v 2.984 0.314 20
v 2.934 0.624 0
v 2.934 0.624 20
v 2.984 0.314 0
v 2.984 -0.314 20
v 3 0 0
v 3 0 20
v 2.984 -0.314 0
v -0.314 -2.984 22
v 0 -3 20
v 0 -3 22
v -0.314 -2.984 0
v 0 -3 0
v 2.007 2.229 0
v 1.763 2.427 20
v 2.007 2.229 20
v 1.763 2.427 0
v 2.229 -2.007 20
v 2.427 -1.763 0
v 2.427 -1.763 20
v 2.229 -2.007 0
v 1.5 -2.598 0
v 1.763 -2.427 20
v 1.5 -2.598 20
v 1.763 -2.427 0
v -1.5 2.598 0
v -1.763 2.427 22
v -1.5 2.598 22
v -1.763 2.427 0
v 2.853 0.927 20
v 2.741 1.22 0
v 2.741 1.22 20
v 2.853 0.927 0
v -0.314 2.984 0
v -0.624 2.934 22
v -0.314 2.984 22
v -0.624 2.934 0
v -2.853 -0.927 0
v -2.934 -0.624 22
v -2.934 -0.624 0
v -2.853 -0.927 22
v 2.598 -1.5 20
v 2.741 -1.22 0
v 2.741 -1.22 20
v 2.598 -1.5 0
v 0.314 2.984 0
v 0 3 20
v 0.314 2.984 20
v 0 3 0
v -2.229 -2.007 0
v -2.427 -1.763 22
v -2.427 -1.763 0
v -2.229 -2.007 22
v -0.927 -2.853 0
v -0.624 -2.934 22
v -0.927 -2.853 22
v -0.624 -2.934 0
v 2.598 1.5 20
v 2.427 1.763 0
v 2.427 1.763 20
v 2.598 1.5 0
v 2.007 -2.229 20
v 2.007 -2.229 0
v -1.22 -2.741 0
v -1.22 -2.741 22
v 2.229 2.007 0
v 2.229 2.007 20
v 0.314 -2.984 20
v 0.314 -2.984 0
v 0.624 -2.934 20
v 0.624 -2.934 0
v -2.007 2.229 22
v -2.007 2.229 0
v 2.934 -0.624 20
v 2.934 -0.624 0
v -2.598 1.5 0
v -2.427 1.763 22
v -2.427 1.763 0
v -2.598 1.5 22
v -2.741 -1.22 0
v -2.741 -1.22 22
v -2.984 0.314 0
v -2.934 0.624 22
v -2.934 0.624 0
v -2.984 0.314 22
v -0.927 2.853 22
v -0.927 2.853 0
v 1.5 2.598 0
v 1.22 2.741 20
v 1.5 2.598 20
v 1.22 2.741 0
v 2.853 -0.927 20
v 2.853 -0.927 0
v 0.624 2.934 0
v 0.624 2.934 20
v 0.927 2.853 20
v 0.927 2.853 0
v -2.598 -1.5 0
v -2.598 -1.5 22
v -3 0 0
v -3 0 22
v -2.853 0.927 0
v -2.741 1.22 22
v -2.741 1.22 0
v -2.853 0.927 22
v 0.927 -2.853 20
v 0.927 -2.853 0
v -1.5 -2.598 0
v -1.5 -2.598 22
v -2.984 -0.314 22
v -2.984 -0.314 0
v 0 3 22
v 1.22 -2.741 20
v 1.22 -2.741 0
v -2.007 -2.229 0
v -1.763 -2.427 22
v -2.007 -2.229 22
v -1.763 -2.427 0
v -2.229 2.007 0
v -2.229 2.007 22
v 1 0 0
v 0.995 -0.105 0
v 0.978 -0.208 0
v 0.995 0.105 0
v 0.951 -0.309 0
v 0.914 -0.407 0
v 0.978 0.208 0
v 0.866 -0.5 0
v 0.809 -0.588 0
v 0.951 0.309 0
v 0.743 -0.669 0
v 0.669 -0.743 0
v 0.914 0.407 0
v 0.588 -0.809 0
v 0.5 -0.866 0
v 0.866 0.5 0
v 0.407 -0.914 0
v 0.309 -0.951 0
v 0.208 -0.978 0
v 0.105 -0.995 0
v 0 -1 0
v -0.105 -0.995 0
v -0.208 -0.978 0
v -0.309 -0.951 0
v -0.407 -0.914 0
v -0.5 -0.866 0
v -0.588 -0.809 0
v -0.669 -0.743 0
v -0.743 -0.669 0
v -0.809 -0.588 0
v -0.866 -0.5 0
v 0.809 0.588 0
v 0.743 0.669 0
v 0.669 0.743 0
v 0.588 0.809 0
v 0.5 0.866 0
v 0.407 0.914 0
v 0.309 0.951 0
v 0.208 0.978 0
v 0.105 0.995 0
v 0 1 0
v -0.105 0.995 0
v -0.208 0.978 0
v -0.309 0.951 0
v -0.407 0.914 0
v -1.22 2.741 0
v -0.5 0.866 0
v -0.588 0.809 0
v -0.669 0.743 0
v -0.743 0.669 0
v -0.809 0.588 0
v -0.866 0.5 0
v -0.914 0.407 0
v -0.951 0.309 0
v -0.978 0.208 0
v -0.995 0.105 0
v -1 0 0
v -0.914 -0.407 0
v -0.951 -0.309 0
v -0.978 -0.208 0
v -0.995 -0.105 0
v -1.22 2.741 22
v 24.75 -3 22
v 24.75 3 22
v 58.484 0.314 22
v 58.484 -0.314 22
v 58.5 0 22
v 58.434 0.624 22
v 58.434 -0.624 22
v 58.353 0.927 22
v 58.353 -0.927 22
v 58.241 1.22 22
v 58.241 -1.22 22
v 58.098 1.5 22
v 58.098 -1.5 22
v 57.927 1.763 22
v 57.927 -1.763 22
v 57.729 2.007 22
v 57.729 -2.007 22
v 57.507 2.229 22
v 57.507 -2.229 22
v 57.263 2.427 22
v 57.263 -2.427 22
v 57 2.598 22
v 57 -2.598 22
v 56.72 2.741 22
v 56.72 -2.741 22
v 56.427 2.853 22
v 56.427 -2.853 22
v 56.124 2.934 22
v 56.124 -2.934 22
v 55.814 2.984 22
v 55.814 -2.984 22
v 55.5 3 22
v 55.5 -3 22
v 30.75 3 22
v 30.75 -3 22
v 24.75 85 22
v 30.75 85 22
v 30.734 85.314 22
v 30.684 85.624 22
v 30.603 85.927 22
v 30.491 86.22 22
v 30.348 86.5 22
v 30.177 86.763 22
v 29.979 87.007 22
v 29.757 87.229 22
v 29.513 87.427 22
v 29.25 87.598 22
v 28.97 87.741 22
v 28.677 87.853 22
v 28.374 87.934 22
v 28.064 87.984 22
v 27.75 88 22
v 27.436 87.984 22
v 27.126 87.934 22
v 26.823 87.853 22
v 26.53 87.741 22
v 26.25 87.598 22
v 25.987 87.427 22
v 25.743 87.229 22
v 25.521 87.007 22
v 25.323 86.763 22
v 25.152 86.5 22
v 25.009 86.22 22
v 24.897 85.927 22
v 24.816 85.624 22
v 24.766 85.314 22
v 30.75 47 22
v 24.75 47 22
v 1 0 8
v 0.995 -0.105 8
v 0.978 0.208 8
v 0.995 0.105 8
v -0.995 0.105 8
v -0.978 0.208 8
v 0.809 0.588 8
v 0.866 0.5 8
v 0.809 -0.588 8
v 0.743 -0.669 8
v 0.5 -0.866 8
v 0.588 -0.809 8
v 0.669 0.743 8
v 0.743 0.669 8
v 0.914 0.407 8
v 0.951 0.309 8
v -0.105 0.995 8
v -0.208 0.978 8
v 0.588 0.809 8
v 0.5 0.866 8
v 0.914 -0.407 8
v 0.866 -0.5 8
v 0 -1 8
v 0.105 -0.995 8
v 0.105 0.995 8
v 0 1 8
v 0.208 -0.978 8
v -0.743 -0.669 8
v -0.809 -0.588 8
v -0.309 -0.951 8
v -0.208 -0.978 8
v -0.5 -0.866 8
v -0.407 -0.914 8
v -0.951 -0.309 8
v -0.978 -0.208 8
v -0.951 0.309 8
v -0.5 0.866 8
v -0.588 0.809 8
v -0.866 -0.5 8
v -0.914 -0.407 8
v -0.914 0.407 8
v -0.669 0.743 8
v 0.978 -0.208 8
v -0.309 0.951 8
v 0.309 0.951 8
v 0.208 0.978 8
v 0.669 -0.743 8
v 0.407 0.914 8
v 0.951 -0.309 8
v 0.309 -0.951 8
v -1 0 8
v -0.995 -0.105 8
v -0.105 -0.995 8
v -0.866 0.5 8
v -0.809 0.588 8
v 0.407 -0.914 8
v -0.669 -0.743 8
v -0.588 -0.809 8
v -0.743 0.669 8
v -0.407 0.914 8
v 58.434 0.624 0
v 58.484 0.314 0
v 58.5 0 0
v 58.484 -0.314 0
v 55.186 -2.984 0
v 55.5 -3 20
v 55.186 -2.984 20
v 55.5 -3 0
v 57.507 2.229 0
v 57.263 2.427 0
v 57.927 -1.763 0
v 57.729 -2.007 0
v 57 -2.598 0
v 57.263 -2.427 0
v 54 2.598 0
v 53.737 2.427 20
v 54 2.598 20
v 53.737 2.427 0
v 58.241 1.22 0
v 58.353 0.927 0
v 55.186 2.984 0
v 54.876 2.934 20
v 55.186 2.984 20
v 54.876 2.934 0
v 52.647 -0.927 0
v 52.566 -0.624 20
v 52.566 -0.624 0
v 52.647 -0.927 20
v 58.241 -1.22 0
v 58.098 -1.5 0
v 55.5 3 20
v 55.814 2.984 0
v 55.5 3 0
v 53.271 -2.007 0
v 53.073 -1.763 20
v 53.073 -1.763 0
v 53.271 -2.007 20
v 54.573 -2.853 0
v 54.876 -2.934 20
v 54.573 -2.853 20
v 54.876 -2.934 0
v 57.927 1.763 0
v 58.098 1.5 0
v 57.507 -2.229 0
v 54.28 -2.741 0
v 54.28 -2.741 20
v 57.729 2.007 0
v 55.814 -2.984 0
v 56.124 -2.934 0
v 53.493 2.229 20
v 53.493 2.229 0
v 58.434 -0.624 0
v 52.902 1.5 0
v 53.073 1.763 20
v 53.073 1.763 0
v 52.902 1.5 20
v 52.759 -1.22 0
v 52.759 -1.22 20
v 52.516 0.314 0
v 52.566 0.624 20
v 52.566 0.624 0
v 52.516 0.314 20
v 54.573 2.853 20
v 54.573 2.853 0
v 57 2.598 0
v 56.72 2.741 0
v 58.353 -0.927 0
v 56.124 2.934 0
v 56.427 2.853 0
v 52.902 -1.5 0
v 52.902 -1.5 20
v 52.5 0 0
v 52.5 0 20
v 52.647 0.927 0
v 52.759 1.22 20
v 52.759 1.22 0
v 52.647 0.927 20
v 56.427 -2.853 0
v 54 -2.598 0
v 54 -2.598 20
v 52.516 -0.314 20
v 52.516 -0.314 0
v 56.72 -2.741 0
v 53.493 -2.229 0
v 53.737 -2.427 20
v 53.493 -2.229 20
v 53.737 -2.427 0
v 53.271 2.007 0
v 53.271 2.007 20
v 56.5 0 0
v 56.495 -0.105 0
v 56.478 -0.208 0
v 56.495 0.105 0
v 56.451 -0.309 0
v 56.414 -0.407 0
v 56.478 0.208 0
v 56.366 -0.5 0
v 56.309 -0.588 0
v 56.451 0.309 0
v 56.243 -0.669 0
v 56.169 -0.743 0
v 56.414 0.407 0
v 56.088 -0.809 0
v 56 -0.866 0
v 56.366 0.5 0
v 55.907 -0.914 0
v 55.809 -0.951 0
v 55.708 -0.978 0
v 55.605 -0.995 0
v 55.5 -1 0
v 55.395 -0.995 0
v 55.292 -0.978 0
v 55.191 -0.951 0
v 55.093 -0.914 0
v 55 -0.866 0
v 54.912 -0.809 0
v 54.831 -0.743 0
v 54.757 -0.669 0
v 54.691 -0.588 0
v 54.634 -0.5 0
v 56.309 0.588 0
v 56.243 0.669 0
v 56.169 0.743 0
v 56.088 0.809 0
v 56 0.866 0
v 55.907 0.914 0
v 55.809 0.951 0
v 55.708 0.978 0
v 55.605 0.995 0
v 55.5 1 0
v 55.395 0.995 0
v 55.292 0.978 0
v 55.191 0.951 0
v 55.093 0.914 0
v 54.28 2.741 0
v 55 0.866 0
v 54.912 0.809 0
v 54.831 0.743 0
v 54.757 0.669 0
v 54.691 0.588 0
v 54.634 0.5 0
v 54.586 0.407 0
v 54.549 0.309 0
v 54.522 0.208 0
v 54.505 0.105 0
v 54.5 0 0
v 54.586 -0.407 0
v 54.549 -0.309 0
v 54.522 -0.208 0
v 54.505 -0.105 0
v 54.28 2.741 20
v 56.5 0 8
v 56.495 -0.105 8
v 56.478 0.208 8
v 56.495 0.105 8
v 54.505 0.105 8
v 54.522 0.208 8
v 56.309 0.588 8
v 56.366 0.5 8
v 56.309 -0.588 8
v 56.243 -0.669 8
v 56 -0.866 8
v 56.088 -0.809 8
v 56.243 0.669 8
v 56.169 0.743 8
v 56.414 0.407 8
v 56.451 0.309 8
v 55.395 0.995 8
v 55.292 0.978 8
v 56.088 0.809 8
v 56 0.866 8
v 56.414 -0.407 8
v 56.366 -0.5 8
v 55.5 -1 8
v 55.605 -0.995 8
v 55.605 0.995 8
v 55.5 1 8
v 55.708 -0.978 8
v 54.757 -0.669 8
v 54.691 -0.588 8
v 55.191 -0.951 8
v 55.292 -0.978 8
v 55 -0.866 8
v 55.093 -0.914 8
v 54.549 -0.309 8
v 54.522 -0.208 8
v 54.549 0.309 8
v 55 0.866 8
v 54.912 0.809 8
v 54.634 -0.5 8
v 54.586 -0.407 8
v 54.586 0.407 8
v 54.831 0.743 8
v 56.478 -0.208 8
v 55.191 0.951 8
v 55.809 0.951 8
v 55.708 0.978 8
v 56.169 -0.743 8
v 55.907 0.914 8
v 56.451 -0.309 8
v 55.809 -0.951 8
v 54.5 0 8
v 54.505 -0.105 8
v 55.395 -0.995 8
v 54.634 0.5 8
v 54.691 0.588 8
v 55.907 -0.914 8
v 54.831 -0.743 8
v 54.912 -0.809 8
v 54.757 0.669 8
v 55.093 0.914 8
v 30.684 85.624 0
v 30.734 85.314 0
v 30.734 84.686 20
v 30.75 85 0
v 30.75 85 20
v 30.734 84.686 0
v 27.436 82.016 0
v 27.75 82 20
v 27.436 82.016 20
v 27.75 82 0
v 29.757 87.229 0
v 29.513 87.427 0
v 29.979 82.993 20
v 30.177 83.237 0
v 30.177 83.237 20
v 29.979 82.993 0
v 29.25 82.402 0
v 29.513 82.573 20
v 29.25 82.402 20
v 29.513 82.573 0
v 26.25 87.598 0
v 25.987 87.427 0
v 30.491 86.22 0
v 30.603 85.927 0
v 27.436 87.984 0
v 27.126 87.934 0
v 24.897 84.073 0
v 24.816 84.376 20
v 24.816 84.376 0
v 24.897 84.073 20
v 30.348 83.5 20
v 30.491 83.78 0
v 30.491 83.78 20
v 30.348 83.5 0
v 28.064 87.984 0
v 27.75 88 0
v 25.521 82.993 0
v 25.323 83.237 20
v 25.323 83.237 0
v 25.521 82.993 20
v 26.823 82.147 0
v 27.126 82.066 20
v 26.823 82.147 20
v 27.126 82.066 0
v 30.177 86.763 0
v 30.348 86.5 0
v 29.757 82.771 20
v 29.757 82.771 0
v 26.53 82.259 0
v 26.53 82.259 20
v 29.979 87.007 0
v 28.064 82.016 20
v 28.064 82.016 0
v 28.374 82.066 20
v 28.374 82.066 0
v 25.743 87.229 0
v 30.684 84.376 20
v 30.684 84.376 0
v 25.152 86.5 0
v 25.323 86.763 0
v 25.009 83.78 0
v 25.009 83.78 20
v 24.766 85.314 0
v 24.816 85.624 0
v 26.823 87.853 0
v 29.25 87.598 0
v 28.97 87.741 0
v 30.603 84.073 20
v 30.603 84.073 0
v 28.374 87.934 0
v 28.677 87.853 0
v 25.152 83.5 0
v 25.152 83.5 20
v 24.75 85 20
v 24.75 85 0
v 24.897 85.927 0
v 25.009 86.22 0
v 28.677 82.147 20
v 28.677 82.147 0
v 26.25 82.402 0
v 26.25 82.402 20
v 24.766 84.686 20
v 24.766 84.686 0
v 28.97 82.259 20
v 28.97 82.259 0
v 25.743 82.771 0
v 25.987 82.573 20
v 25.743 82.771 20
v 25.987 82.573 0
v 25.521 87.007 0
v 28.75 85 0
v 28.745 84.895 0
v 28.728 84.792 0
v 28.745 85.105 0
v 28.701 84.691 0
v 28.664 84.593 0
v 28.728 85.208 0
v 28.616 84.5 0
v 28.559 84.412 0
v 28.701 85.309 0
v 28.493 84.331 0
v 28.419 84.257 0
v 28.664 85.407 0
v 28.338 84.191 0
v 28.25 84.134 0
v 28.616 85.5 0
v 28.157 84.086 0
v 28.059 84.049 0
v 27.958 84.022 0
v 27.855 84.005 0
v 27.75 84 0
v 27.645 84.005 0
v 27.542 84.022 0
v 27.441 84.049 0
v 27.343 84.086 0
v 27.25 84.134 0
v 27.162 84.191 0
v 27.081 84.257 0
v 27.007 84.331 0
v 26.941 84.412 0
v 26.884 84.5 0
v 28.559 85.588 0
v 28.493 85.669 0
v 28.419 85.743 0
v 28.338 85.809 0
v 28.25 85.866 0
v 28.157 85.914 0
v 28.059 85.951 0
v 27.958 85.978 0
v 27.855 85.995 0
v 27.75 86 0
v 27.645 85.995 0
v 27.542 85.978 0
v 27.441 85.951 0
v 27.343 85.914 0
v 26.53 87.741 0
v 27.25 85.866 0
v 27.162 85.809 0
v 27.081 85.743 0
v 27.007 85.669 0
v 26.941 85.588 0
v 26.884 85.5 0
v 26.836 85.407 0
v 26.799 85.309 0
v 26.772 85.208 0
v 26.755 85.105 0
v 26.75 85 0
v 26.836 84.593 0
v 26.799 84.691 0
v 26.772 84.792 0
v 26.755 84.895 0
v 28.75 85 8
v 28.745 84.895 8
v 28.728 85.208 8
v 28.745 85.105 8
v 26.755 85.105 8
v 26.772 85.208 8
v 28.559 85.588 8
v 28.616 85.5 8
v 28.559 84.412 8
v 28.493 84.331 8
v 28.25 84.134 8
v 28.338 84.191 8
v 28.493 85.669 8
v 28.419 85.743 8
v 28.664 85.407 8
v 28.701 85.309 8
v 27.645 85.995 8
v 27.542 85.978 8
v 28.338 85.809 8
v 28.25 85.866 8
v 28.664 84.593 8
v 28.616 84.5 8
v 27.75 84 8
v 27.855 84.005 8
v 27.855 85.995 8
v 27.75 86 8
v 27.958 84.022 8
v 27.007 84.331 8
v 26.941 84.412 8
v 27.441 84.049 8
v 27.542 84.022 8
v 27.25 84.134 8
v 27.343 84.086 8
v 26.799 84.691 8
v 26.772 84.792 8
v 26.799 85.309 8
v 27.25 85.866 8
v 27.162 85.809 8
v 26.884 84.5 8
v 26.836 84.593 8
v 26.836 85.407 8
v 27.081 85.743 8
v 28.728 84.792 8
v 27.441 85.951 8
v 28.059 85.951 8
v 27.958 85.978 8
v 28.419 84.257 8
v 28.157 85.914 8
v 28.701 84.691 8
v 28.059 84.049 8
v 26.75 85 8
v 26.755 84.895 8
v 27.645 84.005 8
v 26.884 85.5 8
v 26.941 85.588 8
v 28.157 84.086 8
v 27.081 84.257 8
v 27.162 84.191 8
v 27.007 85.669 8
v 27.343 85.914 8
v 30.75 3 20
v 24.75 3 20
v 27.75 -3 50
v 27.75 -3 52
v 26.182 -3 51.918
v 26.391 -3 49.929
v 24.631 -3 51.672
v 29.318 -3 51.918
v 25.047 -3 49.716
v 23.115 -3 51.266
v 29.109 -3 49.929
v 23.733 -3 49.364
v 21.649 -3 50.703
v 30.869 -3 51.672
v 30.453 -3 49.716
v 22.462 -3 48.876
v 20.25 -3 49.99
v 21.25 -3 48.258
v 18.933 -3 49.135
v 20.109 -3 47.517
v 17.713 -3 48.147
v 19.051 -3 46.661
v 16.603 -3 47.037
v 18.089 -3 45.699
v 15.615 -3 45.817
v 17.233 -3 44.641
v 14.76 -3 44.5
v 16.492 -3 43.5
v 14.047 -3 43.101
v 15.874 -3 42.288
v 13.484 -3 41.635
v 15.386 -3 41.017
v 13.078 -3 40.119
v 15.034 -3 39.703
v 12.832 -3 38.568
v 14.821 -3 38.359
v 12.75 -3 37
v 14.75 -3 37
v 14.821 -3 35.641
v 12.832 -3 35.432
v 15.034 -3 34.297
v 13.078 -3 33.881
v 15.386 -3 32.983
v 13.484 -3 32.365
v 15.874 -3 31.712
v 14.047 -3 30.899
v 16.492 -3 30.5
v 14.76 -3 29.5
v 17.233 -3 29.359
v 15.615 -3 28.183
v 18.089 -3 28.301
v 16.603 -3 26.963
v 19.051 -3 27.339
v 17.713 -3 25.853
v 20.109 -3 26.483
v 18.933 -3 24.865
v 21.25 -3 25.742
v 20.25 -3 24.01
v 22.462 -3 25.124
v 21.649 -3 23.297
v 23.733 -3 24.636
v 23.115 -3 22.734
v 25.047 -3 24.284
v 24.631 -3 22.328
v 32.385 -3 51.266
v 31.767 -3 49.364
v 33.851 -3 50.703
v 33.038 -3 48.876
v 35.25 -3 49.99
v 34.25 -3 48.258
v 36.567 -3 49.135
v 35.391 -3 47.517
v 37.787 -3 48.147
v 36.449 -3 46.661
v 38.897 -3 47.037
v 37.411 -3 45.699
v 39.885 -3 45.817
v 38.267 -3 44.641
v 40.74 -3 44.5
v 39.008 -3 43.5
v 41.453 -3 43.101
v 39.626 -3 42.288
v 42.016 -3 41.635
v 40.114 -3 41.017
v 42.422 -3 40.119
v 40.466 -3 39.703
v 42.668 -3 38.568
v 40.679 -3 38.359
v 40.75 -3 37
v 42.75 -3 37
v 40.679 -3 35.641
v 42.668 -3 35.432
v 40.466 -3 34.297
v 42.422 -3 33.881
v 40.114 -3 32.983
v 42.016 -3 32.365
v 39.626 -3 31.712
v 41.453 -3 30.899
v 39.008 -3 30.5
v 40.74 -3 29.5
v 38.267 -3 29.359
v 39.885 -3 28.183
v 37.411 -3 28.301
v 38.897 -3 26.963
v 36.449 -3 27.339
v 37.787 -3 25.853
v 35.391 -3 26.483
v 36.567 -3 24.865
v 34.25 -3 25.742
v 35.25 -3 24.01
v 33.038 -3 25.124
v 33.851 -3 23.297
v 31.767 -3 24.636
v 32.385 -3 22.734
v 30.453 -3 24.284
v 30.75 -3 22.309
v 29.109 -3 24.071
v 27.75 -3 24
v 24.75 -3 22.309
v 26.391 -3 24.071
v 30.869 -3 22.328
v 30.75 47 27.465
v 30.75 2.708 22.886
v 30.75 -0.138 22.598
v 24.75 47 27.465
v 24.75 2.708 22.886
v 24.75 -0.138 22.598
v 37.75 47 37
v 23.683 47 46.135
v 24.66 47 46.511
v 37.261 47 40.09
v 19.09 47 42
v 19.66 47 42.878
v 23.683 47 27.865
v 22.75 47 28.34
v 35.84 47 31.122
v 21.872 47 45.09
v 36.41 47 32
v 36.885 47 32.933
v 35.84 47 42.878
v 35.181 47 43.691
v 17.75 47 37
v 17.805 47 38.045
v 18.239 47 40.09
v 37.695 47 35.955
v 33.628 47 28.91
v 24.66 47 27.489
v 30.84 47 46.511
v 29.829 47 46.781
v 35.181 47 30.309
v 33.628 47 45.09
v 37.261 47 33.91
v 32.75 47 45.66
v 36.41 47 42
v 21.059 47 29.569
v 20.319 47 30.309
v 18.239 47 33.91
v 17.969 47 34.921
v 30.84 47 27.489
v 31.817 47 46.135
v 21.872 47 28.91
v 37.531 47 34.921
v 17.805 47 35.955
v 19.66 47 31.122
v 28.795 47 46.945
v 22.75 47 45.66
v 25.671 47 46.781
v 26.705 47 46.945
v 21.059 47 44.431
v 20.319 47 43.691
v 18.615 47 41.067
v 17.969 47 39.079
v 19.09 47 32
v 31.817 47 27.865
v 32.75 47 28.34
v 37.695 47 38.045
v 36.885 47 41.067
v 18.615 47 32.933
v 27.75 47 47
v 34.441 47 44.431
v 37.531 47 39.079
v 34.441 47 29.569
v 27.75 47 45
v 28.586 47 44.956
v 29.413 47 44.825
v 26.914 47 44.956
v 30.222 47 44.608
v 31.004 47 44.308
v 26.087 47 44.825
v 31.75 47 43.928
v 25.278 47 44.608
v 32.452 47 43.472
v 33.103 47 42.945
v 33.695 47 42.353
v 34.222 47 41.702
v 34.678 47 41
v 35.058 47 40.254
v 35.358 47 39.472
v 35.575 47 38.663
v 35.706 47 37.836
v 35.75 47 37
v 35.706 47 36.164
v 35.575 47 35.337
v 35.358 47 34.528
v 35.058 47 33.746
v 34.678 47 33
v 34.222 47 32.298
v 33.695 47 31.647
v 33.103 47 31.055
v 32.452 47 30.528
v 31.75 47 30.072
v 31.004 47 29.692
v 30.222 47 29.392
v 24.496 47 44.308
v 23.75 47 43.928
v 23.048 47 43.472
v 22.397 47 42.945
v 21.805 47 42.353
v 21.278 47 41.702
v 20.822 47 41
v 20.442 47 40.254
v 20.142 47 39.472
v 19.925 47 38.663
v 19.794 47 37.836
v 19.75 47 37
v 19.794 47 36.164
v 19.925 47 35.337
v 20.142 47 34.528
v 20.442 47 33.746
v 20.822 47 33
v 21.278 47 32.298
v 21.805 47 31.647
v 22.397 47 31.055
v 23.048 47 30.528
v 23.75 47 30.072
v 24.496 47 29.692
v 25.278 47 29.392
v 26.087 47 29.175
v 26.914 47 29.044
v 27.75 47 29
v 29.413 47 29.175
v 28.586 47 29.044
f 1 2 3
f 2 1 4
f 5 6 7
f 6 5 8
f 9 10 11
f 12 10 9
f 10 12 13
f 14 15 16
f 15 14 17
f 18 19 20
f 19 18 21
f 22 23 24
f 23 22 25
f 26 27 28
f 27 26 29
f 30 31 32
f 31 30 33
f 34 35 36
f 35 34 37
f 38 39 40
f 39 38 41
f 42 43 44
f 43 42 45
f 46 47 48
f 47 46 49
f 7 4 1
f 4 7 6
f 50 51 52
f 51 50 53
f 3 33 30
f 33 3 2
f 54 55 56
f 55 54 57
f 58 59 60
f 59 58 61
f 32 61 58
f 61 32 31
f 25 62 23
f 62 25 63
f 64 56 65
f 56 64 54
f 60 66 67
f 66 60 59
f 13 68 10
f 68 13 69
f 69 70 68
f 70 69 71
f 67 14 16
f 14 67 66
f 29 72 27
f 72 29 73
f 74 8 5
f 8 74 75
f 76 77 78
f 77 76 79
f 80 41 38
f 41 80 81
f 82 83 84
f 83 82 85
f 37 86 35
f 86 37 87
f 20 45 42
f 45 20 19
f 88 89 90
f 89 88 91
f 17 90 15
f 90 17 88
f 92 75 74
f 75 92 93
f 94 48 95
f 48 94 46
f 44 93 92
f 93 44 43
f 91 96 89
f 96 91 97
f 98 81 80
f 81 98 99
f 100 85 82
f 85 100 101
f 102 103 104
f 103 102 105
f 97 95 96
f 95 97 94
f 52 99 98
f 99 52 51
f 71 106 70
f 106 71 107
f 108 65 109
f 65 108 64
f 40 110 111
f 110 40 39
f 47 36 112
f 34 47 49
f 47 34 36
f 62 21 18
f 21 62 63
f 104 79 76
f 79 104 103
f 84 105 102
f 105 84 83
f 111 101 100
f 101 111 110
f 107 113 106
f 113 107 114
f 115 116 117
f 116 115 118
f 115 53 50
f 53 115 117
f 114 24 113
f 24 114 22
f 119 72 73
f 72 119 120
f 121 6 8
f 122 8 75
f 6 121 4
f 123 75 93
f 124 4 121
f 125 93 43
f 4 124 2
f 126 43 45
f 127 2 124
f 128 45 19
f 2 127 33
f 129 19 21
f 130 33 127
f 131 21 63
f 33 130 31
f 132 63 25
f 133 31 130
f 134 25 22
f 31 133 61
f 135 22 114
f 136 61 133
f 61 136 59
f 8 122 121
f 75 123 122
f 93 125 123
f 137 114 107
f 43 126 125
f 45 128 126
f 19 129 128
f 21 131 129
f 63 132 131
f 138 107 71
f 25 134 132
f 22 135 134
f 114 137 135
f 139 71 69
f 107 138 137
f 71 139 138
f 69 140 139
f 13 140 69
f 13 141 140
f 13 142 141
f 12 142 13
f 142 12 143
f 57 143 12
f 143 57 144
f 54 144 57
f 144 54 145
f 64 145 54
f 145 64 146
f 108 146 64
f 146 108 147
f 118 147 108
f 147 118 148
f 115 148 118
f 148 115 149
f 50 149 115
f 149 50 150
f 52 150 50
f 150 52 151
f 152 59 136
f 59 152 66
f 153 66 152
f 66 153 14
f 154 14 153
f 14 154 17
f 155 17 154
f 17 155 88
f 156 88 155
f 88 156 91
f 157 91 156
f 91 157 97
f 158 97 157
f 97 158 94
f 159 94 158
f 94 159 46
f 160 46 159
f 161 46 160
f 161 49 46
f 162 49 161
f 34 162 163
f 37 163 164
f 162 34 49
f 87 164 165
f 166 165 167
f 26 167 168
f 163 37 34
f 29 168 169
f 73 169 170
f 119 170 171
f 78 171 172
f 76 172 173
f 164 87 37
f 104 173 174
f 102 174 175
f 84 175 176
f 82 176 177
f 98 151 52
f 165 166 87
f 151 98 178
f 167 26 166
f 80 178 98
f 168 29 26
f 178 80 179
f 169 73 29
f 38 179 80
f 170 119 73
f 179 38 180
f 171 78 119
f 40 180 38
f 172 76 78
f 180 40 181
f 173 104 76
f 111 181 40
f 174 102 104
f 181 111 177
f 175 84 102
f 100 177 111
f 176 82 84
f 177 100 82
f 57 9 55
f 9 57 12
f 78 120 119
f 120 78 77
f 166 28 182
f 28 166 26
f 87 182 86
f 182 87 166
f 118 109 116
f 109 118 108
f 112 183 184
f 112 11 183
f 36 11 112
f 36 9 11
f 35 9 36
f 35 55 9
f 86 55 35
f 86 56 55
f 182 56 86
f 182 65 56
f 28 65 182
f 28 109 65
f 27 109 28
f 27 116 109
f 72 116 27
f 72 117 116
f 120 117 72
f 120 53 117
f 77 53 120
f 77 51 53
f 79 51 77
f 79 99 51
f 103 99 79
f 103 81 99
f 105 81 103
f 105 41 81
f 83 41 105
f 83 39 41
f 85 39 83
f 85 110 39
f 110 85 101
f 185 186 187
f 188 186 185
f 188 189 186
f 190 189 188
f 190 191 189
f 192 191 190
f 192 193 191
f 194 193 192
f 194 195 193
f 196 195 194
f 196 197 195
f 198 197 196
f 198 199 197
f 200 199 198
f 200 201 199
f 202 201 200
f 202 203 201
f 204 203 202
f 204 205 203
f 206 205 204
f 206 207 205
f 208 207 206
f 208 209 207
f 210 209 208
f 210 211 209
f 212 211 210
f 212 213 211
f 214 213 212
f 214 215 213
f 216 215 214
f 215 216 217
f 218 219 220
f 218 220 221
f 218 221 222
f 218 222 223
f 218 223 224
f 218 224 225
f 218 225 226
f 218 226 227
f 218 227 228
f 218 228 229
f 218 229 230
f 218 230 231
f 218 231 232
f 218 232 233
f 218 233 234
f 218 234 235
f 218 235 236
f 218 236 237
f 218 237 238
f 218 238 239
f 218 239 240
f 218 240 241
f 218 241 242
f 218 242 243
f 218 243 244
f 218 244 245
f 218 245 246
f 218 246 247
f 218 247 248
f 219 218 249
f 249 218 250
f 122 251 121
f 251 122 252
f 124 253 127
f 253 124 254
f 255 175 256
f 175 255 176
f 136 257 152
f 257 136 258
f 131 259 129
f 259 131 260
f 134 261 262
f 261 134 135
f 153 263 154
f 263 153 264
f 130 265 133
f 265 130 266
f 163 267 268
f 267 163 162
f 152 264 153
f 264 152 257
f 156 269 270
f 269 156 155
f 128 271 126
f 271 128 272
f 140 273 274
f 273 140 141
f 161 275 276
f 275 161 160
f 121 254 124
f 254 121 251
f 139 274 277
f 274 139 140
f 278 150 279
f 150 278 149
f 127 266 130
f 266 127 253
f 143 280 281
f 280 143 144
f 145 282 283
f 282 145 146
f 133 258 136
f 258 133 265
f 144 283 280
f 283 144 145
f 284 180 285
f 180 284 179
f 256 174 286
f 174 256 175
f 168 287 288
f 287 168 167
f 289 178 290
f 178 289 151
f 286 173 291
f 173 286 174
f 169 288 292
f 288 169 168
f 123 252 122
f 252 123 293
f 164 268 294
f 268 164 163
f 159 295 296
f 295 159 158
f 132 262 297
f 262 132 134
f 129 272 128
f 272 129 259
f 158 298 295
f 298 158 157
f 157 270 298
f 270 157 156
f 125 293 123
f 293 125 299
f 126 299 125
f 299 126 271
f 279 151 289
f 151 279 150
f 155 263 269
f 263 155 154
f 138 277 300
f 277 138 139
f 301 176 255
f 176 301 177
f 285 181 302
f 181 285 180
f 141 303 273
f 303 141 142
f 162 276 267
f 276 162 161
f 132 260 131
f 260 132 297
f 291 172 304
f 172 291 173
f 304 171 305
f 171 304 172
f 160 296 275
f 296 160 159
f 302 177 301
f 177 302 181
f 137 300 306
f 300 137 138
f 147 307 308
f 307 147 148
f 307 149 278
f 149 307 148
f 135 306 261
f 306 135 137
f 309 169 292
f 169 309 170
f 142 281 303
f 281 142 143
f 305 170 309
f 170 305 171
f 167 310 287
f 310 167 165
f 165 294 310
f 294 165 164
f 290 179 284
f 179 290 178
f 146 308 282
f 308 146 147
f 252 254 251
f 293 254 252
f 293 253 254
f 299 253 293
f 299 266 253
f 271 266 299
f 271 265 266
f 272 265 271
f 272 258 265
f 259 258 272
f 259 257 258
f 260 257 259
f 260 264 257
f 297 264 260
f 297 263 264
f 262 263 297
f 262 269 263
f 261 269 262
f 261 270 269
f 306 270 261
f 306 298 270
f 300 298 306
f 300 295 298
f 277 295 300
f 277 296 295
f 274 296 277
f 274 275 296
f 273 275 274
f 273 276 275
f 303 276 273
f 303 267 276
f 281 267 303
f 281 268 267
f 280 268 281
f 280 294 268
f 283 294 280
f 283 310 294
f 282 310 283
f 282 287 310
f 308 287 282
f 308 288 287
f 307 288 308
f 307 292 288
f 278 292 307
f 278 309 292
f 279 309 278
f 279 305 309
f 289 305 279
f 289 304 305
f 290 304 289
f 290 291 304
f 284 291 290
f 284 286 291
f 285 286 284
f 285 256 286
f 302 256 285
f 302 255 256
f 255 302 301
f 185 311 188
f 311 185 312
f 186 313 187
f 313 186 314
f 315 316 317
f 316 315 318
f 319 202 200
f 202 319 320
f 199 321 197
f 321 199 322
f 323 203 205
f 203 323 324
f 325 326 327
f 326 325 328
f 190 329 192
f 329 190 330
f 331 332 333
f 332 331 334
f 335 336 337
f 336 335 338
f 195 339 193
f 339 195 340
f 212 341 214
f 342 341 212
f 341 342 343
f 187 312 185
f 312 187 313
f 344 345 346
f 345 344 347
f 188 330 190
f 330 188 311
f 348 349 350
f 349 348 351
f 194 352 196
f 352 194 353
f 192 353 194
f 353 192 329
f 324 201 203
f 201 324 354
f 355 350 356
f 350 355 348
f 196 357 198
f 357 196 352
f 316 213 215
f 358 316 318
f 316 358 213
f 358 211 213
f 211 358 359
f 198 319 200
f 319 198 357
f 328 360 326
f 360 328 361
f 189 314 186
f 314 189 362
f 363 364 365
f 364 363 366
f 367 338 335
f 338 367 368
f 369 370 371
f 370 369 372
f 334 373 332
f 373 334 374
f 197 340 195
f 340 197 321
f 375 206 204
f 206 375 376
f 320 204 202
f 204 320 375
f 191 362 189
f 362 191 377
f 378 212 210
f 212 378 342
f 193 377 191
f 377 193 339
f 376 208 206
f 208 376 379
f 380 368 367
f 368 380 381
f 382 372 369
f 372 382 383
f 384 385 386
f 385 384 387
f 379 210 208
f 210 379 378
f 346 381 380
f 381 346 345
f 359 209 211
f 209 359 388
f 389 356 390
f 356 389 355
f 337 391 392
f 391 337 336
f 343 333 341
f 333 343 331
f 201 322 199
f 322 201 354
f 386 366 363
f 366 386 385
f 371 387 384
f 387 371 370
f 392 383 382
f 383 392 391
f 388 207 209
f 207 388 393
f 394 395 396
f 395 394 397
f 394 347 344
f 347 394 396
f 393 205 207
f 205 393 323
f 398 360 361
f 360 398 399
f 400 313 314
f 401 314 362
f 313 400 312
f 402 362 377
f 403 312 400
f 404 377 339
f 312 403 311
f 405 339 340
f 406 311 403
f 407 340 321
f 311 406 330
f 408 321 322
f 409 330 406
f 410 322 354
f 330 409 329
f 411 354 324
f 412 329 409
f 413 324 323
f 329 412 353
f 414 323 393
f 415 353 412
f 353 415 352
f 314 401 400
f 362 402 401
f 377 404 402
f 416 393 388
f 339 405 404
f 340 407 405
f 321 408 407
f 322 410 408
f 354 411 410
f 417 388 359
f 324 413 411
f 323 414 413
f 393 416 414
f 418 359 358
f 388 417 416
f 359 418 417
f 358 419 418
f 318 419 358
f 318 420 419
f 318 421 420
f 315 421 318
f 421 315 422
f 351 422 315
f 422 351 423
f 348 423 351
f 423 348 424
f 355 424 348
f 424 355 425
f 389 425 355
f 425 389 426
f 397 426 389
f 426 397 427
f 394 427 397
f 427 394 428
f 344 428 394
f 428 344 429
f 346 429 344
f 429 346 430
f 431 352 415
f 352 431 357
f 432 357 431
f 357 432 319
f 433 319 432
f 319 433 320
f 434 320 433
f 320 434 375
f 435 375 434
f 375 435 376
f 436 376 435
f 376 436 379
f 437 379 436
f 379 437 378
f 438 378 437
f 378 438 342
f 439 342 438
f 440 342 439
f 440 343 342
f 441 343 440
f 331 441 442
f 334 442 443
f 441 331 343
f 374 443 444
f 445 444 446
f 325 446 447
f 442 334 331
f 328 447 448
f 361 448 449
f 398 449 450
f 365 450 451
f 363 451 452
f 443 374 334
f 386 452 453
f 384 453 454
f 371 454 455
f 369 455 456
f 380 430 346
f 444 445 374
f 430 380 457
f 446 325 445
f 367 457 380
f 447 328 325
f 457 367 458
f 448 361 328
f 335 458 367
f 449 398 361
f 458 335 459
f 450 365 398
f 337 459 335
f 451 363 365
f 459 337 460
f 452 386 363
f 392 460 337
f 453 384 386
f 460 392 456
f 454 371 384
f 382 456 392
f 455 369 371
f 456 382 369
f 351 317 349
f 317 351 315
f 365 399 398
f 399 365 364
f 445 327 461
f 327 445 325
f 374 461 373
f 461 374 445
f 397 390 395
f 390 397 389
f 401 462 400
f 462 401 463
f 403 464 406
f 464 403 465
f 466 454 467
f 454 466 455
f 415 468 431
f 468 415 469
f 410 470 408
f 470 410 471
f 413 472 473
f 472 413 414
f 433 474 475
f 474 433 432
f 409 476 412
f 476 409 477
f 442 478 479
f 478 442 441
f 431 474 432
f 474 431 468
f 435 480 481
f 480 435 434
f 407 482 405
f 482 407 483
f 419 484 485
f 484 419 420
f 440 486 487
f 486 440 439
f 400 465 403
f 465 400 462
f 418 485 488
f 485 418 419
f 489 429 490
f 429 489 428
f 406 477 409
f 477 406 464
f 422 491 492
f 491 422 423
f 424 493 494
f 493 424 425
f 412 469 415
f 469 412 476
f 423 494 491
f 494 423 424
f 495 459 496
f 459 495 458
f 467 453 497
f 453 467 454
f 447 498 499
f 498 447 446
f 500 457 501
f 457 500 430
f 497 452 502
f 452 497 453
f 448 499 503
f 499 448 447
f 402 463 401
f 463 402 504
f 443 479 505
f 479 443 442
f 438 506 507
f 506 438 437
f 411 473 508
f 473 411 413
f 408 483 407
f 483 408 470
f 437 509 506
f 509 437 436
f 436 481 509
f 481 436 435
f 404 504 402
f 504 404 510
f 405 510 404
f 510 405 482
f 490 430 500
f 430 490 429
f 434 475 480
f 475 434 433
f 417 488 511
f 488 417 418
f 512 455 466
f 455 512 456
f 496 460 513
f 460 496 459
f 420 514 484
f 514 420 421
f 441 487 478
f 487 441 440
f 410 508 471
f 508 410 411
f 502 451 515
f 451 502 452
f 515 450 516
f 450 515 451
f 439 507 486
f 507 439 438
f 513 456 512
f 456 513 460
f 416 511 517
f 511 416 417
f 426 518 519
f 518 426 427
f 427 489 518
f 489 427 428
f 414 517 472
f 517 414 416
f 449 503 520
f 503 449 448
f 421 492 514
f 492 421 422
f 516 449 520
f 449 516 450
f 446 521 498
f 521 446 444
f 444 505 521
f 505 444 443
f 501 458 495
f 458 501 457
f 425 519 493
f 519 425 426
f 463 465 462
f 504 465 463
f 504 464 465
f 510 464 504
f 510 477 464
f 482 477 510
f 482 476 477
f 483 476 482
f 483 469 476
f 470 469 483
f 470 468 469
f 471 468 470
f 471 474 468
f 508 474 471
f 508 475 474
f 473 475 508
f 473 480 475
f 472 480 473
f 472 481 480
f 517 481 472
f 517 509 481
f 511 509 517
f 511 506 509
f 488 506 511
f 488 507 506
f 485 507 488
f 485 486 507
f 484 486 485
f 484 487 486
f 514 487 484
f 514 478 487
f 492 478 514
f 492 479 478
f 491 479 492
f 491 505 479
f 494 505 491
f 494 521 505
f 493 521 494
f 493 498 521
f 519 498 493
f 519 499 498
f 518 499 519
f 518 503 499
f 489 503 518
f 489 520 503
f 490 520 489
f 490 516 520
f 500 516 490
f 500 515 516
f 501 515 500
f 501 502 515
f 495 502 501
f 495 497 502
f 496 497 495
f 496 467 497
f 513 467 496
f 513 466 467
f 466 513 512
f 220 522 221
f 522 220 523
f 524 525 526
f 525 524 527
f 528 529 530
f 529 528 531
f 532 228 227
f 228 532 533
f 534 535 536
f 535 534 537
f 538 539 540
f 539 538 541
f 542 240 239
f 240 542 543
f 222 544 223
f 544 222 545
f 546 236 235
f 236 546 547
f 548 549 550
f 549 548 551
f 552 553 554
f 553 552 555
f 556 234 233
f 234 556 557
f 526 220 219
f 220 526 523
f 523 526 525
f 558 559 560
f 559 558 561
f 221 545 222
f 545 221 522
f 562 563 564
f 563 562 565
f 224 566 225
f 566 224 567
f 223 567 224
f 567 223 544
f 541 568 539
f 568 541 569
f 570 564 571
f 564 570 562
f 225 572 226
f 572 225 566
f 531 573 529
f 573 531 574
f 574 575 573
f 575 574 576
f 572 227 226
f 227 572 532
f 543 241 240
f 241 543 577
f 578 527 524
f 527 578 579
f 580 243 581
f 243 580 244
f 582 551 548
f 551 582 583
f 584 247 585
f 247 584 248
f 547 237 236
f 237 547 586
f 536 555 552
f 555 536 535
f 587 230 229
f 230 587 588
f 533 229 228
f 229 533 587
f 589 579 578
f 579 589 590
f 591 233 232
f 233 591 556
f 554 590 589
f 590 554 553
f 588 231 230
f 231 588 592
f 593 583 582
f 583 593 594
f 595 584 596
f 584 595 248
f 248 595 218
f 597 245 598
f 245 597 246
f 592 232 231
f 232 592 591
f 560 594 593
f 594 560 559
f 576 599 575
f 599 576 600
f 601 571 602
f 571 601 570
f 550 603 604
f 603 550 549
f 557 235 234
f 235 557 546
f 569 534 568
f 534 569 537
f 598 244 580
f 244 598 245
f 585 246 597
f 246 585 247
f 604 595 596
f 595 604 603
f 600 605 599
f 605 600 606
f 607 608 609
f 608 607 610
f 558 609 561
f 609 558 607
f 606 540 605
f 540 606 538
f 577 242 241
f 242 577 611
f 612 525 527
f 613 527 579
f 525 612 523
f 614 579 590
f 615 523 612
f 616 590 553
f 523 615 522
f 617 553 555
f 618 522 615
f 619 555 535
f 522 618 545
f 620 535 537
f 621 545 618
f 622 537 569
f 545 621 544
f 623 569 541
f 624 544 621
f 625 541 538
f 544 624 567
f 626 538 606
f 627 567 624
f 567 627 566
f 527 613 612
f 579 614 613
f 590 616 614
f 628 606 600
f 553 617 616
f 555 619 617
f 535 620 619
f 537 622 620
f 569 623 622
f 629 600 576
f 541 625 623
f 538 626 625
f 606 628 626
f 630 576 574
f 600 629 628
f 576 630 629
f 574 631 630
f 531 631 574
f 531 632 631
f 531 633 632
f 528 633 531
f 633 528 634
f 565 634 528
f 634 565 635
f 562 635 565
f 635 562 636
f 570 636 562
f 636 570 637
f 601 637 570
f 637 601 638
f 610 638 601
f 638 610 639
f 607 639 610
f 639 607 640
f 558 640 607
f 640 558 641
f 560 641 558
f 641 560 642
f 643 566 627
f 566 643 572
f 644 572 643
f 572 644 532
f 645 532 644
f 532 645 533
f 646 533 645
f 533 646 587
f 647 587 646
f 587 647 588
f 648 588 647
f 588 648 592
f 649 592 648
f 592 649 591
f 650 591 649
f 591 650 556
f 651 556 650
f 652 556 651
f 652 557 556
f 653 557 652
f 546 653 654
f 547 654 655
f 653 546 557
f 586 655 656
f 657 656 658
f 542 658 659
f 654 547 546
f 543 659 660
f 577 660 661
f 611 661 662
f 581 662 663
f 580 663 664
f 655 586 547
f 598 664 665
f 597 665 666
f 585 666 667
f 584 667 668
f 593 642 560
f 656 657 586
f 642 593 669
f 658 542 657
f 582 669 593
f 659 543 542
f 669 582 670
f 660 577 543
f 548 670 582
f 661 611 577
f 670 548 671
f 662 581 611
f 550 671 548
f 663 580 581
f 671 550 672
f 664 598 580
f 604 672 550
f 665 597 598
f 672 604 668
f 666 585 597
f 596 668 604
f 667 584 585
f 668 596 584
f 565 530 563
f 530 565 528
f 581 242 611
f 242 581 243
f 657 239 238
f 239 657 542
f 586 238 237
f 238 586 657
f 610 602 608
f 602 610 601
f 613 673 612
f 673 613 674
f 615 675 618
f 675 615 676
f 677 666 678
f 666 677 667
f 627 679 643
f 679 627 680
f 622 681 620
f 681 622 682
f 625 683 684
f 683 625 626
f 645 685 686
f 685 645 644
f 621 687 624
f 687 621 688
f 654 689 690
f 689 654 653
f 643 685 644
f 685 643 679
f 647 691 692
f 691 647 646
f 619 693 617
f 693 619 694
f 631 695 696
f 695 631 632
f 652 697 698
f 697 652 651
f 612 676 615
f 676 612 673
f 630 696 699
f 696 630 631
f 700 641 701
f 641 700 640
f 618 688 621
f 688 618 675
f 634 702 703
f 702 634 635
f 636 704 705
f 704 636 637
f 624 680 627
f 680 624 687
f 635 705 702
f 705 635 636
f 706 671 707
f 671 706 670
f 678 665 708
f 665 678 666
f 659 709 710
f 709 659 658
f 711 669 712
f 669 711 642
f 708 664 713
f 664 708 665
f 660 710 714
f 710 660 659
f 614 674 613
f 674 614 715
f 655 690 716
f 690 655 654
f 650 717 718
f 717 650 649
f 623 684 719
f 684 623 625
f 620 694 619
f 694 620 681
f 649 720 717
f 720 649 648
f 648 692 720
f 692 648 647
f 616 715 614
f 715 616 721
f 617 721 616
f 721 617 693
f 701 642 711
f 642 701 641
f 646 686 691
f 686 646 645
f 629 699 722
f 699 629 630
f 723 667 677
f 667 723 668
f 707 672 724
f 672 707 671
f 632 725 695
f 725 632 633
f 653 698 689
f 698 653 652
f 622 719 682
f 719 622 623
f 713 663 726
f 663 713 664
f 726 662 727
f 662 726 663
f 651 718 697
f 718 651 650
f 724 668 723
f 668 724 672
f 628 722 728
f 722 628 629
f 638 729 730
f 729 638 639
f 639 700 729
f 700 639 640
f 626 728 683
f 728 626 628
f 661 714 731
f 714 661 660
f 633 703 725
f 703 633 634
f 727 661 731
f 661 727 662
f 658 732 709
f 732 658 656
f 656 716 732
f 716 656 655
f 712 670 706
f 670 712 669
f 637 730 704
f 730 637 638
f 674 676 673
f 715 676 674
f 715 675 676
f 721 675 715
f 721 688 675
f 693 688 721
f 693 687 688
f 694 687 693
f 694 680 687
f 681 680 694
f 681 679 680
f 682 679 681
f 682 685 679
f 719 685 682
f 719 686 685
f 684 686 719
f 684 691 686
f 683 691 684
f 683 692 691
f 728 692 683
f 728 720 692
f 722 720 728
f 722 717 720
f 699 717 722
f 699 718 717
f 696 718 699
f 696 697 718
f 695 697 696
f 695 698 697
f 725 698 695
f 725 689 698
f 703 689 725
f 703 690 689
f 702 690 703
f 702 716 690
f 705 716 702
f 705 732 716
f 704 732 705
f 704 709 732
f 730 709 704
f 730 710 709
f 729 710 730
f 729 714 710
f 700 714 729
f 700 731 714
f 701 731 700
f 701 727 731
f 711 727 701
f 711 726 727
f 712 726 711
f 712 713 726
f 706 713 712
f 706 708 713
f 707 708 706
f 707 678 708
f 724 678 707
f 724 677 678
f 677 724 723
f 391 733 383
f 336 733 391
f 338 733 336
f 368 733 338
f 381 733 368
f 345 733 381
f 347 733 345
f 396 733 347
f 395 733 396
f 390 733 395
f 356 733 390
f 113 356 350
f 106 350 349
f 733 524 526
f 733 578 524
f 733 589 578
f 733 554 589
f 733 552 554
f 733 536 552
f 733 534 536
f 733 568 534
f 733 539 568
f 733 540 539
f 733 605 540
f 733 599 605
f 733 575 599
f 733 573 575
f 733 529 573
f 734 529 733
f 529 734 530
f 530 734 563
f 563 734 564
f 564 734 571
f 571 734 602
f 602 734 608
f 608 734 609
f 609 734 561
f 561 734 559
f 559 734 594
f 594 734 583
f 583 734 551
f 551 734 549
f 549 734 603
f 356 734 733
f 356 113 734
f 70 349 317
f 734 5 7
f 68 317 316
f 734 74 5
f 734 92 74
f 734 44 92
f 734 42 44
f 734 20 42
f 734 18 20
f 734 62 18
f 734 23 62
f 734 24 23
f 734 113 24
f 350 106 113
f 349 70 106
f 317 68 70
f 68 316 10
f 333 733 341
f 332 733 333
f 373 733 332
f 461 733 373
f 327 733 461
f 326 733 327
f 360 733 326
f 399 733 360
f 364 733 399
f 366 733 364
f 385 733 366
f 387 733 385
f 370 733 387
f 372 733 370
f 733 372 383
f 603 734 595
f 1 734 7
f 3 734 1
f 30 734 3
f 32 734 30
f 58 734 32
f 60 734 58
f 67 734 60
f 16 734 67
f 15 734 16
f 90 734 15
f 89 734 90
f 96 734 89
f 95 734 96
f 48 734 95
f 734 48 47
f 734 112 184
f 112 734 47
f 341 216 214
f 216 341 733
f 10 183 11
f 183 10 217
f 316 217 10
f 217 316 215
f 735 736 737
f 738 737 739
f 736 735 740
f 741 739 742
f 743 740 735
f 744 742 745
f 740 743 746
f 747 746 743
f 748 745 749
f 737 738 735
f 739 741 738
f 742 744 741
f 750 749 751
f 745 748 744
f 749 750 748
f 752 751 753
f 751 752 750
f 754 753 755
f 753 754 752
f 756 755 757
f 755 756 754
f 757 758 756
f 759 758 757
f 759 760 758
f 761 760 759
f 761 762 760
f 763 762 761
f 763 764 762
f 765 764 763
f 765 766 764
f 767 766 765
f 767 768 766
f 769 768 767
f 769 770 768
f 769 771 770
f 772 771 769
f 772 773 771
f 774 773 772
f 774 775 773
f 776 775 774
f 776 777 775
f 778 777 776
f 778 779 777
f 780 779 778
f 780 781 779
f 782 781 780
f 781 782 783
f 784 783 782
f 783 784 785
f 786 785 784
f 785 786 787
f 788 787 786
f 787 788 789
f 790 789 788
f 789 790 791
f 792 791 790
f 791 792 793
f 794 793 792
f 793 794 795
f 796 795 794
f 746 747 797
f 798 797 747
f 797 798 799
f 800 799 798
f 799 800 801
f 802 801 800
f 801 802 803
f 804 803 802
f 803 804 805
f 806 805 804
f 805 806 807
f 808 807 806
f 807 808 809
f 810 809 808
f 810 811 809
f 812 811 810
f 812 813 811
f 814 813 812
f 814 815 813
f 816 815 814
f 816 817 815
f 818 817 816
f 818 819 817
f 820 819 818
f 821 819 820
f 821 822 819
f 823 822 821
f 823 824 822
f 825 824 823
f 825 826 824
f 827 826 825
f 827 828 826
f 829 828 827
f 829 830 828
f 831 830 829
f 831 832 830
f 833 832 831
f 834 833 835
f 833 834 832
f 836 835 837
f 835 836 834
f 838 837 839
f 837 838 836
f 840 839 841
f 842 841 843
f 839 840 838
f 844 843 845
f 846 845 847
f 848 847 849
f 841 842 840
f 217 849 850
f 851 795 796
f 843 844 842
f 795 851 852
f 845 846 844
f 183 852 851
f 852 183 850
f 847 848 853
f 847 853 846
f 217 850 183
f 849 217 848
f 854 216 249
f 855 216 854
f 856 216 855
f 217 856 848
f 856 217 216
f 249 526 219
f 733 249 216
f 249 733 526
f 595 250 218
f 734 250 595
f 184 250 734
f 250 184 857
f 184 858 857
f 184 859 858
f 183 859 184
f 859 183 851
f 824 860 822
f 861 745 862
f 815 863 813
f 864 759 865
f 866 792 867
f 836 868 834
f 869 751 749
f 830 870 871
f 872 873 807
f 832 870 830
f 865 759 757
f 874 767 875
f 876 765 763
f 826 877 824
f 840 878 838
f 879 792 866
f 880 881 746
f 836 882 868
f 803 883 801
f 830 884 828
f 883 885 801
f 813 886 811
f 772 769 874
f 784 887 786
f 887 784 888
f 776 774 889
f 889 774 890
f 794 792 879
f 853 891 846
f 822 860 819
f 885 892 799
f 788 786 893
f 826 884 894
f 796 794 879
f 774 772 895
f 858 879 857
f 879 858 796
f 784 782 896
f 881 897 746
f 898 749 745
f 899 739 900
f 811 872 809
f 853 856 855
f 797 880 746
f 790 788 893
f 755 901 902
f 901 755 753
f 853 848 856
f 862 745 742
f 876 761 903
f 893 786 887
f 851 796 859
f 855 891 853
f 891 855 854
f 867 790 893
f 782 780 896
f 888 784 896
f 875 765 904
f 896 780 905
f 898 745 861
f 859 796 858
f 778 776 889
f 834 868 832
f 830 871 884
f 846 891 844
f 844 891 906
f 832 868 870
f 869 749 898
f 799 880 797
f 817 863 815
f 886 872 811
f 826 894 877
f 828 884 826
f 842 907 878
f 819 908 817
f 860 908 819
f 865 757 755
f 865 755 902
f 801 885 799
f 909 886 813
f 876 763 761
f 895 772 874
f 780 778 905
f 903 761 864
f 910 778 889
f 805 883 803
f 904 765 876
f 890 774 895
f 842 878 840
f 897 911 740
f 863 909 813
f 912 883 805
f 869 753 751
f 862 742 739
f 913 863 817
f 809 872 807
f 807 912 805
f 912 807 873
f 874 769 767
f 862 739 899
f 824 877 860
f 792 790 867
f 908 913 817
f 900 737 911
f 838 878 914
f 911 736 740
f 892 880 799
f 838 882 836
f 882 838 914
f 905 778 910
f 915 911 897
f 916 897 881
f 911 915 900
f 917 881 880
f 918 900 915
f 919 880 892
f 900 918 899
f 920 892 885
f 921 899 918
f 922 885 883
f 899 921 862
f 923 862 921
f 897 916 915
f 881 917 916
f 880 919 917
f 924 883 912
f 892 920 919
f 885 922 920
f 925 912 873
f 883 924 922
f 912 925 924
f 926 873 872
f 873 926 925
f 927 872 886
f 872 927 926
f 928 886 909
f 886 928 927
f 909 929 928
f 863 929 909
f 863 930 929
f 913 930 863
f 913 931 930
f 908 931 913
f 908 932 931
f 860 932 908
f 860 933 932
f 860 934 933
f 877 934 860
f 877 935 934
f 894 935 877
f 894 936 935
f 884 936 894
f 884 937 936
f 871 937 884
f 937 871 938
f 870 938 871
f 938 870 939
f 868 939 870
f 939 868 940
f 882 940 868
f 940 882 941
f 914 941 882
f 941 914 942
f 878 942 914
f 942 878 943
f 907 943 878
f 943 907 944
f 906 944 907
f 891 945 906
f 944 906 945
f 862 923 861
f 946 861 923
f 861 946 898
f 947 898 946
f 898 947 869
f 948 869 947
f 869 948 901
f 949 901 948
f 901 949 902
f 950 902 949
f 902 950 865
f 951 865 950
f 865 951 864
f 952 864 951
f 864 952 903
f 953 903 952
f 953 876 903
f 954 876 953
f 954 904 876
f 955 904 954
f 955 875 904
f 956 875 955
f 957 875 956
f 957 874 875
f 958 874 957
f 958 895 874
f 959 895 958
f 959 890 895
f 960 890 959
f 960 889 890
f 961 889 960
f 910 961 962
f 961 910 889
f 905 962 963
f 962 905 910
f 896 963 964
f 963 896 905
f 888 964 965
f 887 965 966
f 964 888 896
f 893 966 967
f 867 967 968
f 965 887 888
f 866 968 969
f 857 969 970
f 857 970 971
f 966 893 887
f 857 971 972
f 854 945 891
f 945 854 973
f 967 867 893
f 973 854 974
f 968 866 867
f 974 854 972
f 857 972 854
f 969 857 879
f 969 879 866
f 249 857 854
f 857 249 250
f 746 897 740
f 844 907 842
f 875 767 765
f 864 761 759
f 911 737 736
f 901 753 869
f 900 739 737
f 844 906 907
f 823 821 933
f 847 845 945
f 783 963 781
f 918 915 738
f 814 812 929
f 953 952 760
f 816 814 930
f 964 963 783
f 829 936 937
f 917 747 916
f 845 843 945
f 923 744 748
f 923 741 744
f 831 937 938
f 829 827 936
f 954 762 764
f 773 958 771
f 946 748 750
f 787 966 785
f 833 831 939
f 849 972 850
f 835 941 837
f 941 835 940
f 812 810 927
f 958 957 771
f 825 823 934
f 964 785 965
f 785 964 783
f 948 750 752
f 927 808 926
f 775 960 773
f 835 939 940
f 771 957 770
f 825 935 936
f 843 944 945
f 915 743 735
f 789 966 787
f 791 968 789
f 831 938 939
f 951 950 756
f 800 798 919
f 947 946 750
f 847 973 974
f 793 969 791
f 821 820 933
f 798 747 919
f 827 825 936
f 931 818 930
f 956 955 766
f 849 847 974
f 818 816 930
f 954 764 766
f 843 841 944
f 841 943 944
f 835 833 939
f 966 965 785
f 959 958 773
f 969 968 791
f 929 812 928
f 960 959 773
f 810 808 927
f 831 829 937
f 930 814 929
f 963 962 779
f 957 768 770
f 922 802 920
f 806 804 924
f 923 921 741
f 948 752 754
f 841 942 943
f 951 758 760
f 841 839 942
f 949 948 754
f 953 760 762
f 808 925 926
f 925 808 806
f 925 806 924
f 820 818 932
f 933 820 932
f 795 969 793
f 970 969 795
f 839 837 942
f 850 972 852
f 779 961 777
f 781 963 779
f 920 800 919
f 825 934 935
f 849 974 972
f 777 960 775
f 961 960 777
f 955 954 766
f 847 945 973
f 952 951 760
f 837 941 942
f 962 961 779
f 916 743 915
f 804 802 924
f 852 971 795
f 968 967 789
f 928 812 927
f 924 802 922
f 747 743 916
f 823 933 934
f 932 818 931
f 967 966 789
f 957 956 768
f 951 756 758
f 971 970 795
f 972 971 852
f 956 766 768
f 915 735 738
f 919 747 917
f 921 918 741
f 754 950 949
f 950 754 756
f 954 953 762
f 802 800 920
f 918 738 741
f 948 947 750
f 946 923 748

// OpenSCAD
// Star tree topper adaptor
// Use M2 x 8mm screws to secure 

$fn=60;

// 8 for below ESP32 module, 22 for above
$frameHeight=22;
$frameThickness=2;

// Part that slips over tree top point
module treeHolder() {
    rotate([-90,0,0]) 
    difference() {
        union() {
            cylinder(h=50,d1=30,d2=20,center=false);
            translate([-3,1,0]) cube([6,15,50]);
        }
        cylinder(h=50,d1=26,d2=16,center=false);
    }
}

// Tower with screw holes
module screwTower() {
    difference() {
        cylinder(h=$frameHeight,d=6,center=false);
        cylinder(h=8,d=2,center=false);
    }
}

// T-shaped frame to screw onto star
module starFrame() {
    screwTower();
    translate([55.5,0,0]) screwTower();
    translate([27.75,85,0]) screwTower();
    translate([0,-3,$frameHeight-$frameThickness]) cube([55.5,6,2]);
    translate([24.75,0,$frameHeight-$frameThickness]) cube([6,85,2]);
}

// Put it all together
module treeTopper() {
 translate([27.75,-3,$frameHeight+15]) treeHolder();
    starFrame();
}


treeTopper();
